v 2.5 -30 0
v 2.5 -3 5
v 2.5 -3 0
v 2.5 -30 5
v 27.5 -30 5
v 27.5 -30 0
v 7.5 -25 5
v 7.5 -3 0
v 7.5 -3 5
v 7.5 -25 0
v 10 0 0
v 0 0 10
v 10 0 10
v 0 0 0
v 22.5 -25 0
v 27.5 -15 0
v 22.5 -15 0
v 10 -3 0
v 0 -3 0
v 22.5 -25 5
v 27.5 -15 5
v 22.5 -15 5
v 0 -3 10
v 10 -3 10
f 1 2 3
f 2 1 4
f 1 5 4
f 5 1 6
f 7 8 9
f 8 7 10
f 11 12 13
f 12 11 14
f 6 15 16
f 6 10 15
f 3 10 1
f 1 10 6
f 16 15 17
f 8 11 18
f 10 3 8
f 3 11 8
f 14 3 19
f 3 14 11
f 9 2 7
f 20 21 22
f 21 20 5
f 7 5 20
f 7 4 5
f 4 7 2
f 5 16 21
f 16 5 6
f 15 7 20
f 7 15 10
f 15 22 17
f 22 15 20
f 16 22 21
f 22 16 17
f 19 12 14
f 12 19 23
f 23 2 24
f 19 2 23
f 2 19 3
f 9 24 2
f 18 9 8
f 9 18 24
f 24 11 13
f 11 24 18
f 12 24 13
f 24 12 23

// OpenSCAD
entrance_width = 11;
entrance_length = 11;

rail_gap=6;
rail_thickness=3;
rail_depth = 4; 

clearance=1;



hook_base_height=30;
hook_thickness=rail_gap - clearance;
hook_hook_length=25;
hook_hook_tip_length=hook_thickness*3;

slider_base_width = entrance_width - clearance;
slider_base_length = entrance_length - clearance;
slider_base_height = rail_depth - clearance;

circle=500;

module hook(){
    cube([hook_thickness,hook_thickness,hook_base_height]);
    translate([0,0,hook_base_height-hook_thickness])cube([hook_hook_length,hook_thickness,hook_thickness]);
    translate([hook_hook_length-hook_thickness,0,hook_base_height-hook_hook_tip_length])cube([hook_thickness,hook_thickness,hook_hook_tip_length]);
    
}

module curtain_slider(){
    //base
    cube([slider_base_width,slider_base_length,slider_base_height]);
    
    //hook
    translate([slider_base_width/2-hook_thickness/2,0,0])hook();
}


rotate([90,0,0])curtain_slider();
